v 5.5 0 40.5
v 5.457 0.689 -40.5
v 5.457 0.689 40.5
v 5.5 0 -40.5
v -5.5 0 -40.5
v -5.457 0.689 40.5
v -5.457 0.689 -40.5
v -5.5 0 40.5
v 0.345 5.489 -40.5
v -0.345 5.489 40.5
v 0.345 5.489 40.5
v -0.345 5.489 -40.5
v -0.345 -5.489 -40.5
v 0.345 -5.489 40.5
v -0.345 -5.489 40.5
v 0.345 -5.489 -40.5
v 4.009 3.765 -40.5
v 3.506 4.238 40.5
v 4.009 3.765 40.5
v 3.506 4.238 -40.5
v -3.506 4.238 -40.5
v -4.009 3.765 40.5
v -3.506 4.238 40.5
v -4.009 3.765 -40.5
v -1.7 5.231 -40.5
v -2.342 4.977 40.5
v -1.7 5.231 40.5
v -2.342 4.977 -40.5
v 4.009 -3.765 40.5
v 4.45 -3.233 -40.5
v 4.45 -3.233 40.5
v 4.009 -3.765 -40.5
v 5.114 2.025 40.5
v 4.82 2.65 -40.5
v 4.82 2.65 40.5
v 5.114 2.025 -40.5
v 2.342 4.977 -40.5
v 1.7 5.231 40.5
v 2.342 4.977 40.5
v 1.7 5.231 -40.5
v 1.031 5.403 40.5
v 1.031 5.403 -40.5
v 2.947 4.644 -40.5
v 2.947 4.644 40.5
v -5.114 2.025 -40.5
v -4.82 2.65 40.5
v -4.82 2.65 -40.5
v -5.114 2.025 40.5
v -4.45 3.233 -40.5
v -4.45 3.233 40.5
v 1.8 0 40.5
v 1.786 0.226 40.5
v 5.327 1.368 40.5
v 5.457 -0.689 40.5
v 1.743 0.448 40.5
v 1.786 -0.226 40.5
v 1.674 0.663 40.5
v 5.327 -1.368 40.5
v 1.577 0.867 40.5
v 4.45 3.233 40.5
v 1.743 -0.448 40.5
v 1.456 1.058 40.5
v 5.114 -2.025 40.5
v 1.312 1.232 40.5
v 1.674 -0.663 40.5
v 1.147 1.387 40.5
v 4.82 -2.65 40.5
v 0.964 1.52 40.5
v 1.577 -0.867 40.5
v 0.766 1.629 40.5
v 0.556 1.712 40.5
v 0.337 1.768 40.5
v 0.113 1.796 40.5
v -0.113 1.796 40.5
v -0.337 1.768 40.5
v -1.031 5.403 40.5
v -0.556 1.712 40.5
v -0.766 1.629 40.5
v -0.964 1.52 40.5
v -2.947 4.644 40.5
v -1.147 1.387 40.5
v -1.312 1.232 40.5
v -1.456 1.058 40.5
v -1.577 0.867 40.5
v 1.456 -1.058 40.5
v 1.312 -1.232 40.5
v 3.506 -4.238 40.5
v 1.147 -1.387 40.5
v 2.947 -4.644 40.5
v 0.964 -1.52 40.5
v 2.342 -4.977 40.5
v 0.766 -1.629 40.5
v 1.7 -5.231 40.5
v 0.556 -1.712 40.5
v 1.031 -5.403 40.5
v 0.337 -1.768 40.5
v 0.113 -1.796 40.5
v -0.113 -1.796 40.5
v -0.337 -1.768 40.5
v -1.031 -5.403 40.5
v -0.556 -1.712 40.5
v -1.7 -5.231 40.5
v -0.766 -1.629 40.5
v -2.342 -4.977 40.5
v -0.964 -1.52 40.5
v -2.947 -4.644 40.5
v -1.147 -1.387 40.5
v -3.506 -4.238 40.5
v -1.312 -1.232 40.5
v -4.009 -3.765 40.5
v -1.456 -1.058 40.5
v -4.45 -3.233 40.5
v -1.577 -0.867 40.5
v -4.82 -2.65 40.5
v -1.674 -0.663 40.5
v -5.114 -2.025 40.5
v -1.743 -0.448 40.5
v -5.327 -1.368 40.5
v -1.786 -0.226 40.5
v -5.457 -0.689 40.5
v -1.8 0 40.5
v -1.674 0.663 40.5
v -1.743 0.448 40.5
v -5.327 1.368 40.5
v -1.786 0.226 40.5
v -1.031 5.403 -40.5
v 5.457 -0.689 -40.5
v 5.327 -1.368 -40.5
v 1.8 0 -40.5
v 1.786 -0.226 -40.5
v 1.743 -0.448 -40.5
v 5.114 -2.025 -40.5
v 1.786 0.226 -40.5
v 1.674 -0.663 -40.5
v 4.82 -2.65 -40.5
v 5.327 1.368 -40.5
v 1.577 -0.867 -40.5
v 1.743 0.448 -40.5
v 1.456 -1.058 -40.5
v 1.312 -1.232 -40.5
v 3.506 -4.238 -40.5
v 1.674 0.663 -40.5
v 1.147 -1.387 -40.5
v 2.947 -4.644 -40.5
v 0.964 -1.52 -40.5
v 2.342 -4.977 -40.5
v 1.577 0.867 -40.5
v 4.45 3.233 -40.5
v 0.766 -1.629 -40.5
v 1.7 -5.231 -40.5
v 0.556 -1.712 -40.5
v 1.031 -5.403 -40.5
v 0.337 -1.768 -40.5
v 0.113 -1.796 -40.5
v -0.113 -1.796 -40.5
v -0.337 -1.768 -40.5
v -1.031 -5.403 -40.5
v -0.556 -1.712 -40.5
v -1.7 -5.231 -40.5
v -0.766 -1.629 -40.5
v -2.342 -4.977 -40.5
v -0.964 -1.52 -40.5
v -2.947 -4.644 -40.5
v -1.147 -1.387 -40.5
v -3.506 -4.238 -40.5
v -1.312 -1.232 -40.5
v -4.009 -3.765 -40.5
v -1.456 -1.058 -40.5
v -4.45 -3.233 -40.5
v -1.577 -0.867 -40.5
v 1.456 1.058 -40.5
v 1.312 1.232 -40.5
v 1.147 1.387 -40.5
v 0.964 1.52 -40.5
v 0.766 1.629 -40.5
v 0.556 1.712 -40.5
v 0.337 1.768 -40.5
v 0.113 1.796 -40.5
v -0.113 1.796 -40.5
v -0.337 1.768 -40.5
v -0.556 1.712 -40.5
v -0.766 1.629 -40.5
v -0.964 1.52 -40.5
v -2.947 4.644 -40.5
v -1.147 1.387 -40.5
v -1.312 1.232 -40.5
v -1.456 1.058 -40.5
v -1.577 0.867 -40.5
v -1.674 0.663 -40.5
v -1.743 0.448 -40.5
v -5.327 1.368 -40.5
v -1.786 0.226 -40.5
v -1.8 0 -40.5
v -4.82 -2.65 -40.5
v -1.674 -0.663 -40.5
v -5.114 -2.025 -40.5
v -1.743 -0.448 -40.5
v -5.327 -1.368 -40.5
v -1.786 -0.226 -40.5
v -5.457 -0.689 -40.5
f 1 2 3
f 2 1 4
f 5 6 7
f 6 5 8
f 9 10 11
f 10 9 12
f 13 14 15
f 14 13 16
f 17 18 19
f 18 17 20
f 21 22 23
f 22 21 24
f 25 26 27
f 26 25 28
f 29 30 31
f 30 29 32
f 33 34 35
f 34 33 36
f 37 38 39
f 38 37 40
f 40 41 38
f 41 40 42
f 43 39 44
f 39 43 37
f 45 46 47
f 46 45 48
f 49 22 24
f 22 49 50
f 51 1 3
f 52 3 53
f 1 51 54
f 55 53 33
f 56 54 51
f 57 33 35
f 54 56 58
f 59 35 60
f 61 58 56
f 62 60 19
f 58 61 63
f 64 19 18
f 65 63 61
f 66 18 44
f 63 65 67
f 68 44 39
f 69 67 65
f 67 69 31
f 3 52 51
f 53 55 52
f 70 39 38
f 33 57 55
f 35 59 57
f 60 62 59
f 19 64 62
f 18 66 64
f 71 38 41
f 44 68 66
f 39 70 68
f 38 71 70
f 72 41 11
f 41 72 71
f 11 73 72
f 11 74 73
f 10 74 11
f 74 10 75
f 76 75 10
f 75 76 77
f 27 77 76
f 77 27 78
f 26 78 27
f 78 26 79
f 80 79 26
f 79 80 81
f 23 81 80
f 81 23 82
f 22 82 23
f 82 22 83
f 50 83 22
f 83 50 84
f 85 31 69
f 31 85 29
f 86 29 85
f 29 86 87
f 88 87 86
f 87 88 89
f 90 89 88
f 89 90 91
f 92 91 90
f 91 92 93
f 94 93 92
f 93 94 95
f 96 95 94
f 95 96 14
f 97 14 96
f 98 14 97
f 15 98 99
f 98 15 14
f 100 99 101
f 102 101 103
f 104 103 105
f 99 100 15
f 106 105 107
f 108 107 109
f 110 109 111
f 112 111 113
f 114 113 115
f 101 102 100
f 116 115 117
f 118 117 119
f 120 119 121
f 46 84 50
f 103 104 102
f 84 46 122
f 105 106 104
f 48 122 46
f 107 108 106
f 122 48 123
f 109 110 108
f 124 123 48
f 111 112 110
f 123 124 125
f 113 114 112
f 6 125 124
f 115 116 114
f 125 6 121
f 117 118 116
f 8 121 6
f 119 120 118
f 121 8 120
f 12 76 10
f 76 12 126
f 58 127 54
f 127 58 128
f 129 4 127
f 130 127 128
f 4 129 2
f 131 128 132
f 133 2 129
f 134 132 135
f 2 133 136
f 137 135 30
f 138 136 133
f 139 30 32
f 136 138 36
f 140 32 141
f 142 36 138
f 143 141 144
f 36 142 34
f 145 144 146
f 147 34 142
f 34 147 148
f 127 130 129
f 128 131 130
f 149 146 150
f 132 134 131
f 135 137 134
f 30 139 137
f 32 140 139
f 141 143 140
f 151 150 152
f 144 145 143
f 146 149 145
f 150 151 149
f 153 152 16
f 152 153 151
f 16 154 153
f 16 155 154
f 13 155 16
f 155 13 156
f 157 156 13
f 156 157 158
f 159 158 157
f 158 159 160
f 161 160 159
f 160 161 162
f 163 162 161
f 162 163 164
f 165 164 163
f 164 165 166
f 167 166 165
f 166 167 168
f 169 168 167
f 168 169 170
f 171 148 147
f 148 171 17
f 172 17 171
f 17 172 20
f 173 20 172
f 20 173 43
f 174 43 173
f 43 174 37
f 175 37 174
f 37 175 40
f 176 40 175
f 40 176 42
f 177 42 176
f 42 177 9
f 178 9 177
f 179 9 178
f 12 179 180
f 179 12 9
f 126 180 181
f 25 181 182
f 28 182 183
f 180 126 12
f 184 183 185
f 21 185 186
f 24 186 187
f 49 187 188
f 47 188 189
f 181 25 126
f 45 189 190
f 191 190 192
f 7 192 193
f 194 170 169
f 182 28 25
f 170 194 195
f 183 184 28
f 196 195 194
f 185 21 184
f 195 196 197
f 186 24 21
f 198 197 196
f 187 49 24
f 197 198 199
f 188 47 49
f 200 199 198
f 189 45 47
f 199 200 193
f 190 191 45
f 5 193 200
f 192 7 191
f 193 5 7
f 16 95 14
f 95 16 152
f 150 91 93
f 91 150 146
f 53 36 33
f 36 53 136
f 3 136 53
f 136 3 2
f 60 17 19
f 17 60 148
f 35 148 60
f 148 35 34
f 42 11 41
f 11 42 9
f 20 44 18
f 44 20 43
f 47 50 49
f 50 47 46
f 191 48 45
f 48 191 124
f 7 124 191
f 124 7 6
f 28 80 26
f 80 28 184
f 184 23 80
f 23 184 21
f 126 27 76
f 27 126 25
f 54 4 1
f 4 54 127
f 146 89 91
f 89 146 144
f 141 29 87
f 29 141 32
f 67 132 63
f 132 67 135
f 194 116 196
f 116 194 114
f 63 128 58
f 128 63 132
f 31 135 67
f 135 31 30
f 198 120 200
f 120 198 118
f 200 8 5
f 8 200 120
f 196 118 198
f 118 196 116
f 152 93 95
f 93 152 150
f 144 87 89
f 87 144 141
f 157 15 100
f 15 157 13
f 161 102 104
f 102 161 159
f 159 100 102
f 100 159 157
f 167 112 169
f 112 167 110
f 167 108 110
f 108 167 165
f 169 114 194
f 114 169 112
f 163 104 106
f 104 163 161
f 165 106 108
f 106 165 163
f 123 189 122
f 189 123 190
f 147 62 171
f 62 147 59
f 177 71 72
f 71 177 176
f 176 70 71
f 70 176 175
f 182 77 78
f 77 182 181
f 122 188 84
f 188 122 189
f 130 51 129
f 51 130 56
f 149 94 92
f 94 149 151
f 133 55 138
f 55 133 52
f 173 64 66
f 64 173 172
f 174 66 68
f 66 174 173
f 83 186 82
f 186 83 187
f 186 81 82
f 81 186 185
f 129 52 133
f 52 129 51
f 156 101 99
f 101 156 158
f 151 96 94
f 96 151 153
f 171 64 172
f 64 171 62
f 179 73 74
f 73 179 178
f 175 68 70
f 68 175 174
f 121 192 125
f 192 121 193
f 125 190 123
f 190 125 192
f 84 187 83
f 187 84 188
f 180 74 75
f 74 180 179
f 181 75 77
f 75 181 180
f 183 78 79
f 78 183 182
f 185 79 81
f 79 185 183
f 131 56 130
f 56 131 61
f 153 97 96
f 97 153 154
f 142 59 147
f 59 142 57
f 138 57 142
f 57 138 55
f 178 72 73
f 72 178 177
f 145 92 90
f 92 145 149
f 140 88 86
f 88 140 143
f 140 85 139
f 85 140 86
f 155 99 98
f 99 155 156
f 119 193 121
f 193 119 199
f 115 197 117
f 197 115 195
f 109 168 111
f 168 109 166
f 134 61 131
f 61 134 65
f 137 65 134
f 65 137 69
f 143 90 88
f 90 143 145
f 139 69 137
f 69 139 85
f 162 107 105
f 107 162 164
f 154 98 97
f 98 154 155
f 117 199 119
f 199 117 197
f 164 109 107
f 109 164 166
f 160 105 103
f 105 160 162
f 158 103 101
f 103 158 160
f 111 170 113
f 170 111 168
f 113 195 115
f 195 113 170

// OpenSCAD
$fn = 50;


difference() {
	union() {
		translate(v = [0, 0, -40.5000000000]) {
			cylinder(h = 81, r = 5.5000000000);
		}
	}
	union() {
		translate(v = [0, 0, -100.0000000000]) {
			cylinder(h = 200, r = 1.8000000000);
		}
	}
}
